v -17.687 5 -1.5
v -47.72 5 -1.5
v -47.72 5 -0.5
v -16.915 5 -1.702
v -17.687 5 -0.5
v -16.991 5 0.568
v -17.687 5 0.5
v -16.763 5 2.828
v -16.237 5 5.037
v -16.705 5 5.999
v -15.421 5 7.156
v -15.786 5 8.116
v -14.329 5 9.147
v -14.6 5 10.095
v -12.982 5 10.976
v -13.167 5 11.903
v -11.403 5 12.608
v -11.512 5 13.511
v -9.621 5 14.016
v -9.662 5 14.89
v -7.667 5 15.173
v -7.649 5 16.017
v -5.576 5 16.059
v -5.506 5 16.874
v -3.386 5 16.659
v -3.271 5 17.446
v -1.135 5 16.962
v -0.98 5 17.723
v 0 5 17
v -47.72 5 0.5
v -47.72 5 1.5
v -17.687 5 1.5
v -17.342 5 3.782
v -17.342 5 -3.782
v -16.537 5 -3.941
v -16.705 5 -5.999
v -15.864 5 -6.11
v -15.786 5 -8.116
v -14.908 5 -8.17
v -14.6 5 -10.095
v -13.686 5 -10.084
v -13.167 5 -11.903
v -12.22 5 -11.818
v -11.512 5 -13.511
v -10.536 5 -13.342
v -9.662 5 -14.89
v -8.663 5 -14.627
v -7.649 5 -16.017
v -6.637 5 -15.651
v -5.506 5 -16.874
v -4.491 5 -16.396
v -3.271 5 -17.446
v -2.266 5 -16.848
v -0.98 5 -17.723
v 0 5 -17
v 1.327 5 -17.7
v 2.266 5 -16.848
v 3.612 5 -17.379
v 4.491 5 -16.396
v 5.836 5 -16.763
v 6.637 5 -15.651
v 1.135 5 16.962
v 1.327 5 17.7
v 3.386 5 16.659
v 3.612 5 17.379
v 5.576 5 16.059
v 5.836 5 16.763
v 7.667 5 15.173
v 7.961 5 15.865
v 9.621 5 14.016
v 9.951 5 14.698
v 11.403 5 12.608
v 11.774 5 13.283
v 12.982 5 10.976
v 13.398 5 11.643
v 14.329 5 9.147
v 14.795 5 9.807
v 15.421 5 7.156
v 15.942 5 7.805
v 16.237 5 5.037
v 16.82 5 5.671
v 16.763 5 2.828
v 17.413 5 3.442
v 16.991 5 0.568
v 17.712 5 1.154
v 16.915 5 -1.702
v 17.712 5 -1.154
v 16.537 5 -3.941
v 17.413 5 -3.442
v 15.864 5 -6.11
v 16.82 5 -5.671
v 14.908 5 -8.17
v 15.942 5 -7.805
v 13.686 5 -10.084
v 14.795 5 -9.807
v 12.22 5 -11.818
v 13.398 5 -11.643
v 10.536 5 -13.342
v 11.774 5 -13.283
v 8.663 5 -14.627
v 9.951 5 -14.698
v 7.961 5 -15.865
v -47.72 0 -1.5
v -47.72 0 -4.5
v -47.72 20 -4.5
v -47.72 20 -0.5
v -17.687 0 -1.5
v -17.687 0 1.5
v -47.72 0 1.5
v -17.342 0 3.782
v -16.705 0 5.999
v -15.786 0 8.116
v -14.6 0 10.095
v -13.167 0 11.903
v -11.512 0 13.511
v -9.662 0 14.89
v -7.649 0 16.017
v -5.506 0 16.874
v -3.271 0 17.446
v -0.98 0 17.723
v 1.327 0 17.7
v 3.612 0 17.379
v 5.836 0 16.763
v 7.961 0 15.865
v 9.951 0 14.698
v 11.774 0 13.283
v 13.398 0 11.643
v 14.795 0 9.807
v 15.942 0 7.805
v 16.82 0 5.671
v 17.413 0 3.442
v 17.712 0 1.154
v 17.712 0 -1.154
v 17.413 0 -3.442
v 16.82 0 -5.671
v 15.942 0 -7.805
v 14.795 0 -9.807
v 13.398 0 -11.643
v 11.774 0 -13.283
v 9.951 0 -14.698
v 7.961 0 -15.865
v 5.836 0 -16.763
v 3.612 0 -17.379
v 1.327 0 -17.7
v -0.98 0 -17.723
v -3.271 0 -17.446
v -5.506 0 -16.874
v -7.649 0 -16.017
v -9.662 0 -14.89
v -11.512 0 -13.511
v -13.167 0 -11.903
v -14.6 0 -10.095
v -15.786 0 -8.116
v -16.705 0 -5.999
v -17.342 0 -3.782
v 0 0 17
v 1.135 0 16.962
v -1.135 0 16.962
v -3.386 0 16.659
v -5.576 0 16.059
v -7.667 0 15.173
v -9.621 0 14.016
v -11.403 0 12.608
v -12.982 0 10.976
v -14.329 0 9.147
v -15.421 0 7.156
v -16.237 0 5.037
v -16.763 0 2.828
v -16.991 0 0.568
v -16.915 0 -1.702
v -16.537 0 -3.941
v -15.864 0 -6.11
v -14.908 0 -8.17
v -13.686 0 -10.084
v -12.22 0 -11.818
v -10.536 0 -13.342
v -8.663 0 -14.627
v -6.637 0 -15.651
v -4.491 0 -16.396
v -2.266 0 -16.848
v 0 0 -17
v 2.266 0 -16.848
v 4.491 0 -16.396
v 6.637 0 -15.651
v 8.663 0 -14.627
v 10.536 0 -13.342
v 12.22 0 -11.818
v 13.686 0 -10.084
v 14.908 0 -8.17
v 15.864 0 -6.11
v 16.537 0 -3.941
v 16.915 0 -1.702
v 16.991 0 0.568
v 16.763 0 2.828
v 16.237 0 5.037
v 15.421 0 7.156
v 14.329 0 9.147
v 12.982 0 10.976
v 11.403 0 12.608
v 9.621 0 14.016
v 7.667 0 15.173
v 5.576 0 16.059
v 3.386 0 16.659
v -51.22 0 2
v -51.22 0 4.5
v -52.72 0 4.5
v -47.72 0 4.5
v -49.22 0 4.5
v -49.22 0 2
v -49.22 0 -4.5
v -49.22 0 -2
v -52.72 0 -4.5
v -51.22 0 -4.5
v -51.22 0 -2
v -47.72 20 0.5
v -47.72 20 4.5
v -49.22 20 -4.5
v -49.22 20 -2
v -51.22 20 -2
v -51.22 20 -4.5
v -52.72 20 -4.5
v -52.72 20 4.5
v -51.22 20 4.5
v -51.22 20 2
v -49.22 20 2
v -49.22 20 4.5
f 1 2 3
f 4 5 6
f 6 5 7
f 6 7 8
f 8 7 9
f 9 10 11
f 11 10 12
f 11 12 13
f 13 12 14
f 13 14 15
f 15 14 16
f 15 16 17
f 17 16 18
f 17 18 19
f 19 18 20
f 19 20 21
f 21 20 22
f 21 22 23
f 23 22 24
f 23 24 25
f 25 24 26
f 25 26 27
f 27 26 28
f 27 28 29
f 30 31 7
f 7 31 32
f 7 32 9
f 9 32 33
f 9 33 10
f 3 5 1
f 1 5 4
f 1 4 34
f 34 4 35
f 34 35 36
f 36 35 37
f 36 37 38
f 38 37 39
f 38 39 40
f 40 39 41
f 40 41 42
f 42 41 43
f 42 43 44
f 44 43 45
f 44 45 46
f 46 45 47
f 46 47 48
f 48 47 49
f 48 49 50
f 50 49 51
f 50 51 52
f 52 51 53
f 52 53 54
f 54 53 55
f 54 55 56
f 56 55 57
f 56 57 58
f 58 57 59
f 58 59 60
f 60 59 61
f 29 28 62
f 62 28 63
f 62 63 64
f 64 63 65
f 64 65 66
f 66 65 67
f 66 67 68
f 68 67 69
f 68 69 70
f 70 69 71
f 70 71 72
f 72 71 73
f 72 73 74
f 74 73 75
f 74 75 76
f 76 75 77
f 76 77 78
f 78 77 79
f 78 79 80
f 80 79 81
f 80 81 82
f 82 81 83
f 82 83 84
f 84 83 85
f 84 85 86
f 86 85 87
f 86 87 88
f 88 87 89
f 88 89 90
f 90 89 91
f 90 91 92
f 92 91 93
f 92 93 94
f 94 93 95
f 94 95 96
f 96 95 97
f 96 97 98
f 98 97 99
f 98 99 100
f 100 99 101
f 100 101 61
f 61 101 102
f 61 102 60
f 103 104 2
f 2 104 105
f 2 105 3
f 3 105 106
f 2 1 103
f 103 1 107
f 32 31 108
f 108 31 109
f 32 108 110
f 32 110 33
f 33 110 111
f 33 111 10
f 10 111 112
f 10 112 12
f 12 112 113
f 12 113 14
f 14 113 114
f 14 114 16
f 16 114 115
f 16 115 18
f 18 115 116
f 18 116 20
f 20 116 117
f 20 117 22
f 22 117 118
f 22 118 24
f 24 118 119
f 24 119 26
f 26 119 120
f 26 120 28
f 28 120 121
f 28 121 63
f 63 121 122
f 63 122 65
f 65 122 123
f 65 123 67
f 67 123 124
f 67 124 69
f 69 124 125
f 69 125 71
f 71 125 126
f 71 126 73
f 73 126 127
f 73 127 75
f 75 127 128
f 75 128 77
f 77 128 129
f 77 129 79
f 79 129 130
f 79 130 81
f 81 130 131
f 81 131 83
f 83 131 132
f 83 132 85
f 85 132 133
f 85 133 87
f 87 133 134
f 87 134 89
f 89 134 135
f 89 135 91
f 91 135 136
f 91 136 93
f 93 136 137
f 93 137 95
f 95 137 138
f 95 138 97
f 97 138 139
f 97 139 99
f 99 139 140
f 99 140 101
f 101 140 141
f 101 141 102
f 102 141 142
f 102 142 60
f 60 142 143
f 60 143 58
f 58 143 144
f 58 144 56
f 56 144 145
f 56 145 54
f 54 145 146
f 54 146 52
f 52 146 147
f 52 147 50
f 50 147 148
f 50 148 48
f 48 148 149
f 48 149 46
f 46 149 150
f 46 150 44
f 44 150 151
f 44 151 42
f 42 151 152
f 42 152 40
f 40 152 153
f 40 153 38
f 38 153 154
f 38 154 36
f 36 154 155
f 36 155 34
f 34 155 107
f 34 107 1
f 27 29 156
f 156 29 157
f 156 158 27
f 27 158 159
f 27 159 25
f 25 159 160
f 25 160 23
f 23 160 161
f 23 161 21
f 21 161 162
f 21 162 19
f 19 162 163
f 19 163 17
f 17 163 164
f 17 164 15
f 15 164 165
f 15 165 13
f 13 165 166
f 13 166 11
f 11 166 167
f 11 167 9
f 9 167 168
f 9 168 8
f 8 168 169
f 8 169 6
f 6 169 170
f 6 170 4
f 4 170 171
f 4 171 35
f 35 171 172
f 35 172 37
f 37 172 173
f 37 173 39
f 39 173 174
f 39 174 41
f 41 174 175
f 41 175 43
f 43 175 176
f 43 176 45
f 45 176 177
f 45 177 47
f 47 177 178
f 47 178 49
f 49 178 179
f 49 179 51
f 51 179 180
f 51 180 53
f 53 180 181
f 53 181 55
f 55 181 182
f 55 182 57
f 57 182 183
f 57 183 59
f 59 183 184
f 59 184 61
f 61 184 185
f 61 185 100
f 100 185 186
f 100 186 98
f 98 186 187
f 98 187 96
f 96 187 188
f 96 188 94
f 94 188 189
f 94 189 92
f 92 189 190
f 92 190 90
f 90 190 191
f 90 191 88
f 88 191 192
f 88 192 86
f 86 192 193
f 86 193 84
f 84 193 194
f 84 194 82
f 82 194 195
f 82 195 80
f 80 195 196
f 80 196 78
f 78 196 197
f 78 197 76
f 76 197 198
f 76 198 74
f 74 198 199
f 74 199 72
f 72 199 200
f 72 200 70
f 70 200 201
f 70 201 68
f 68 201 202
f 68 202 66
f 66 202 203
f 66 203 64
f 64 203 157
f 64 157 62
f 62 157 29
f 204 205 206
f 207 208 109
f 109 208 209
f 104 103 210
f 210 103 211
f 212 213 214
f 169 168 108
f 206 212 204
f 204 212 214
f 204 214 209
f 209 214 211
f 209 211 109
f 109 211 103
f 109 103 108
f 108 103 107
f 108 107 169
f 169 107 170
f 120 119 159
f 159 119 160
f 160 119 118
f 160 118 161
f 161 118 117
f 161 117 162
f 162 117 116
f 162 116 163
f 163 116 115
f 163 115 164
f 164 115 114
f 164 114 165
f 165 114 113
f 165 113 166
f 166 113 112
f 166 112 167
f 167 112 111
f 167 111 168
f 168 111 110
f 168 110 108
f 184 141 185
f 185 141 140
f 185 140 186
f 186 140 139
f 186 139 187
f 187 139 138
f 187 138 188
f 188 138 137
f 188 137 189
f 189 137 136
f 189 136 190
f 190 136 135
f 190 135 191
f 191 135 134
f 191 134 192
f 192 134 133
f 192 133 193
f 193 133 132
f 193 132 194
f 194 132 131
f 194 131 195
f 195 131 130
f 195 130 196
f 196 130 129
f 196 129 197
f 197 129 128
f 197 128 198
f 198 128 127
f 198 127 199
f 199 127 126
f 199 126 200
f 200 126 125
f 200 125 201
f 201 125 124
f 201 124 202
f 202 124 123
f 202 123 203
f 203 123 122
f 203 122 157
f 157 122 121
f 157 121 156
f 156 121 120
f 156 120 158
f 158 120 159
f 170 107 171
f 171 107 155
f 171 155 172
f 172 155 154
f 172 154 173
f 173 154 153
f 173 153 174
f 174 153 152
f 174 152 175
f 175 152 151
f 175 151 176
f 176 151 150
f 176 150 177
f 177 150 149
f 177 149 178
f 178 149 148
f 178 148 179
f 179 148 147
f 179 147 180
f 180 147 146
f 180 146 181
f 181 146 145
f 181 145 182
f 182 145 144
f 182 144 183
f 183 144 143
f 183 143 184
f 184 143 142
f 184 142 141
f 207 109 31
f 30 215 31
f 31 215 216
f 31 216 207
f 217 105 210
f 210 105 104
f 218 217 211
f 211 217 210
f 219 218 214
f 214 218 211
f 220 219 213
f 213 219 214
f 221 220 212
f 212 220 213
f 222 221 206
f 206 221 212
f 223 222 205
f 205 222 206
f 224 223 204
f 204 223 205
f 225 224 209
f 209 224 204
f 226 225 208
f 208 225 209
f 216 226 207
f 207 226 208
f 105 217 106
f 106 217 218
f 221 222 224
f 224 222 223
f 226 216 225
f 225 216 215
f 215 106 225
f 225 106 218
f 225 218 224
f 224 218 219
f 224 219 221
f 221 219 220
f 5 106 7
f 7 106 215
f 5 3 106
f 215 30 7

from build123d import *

# Parameters (mm, degrees)
SKETCH8_R            = 17
BOSS_EXTRUDE10_DEPTH = 5
BOSS_EXTRUDE11_DEPTH = 20
BOSS_EXTRUDE13_START = -1
BOSS_EXTRUDE13_DEPTH = 1


with BuildPart() as part:
    # Sketch8 → Boss-Extrude10 (new body)
    with BuildSketch(Plane(origin=(0, 0, 0), x_dir=(1, 0, 0), z_dir=(0, 1, 0))):
        with BuildLine():
            Line((-17.686506156, 1.5), (-47.720151855, 1.5))
            Line((-47.720151855, 1.5), (-47.720151855, -1.5))
            Line((-47.720151855, -1.5), (-17.686506156, -1.5))
            ThreePointArc((-17.686506156, -1.5), (17.75, 0), (-17.686506156, 1.5))
        make_face()
        Circle(SKETCH8_R, mode=Mode.SUBTRACT)
    extrude(amount=BOSS_EXTRUDE10_DEPTH)

    # Sketch8<3> → Boss-Extrude11 (add)
    with BuildSketch(Plane(origin=(0, 0, 0), x_dir=(1, 0, 0), z_dir=(0, 1, 0))):
        Polygon((-47.720151855, -1.5), (-47.720151855, 1.5), (-47.720151855, 4.5), (-49.220151855, 4.5), (-49.220151855, 2), (-51.220151855, 2), (-51.220151855, 4.5), (-52.720151855, 4.5), (-52.720151855, -4.5), (-51.220151855, -4.5), (-51.220151855, -2), (-49.220151855, -2), (-49.220151855, -4.5), (-47.720151855, -4.5), align=None)
    extrude(amount=BOSS_EXTRUDE11_DEPTH)

    # Sketch9 → Boss-Extrude13 (add)
    with BuildSketch(Plane.XY.offset(1.5).offset(BOSS_EXTRUDE13_START)):
        Polygon((-17.686506156, 5), (-47.720151855, 5), (-47.720151855, 20), align=None)
    extrude(amount=-BOSS_EXTRUDE13_DEPTH)


solid = part.part
